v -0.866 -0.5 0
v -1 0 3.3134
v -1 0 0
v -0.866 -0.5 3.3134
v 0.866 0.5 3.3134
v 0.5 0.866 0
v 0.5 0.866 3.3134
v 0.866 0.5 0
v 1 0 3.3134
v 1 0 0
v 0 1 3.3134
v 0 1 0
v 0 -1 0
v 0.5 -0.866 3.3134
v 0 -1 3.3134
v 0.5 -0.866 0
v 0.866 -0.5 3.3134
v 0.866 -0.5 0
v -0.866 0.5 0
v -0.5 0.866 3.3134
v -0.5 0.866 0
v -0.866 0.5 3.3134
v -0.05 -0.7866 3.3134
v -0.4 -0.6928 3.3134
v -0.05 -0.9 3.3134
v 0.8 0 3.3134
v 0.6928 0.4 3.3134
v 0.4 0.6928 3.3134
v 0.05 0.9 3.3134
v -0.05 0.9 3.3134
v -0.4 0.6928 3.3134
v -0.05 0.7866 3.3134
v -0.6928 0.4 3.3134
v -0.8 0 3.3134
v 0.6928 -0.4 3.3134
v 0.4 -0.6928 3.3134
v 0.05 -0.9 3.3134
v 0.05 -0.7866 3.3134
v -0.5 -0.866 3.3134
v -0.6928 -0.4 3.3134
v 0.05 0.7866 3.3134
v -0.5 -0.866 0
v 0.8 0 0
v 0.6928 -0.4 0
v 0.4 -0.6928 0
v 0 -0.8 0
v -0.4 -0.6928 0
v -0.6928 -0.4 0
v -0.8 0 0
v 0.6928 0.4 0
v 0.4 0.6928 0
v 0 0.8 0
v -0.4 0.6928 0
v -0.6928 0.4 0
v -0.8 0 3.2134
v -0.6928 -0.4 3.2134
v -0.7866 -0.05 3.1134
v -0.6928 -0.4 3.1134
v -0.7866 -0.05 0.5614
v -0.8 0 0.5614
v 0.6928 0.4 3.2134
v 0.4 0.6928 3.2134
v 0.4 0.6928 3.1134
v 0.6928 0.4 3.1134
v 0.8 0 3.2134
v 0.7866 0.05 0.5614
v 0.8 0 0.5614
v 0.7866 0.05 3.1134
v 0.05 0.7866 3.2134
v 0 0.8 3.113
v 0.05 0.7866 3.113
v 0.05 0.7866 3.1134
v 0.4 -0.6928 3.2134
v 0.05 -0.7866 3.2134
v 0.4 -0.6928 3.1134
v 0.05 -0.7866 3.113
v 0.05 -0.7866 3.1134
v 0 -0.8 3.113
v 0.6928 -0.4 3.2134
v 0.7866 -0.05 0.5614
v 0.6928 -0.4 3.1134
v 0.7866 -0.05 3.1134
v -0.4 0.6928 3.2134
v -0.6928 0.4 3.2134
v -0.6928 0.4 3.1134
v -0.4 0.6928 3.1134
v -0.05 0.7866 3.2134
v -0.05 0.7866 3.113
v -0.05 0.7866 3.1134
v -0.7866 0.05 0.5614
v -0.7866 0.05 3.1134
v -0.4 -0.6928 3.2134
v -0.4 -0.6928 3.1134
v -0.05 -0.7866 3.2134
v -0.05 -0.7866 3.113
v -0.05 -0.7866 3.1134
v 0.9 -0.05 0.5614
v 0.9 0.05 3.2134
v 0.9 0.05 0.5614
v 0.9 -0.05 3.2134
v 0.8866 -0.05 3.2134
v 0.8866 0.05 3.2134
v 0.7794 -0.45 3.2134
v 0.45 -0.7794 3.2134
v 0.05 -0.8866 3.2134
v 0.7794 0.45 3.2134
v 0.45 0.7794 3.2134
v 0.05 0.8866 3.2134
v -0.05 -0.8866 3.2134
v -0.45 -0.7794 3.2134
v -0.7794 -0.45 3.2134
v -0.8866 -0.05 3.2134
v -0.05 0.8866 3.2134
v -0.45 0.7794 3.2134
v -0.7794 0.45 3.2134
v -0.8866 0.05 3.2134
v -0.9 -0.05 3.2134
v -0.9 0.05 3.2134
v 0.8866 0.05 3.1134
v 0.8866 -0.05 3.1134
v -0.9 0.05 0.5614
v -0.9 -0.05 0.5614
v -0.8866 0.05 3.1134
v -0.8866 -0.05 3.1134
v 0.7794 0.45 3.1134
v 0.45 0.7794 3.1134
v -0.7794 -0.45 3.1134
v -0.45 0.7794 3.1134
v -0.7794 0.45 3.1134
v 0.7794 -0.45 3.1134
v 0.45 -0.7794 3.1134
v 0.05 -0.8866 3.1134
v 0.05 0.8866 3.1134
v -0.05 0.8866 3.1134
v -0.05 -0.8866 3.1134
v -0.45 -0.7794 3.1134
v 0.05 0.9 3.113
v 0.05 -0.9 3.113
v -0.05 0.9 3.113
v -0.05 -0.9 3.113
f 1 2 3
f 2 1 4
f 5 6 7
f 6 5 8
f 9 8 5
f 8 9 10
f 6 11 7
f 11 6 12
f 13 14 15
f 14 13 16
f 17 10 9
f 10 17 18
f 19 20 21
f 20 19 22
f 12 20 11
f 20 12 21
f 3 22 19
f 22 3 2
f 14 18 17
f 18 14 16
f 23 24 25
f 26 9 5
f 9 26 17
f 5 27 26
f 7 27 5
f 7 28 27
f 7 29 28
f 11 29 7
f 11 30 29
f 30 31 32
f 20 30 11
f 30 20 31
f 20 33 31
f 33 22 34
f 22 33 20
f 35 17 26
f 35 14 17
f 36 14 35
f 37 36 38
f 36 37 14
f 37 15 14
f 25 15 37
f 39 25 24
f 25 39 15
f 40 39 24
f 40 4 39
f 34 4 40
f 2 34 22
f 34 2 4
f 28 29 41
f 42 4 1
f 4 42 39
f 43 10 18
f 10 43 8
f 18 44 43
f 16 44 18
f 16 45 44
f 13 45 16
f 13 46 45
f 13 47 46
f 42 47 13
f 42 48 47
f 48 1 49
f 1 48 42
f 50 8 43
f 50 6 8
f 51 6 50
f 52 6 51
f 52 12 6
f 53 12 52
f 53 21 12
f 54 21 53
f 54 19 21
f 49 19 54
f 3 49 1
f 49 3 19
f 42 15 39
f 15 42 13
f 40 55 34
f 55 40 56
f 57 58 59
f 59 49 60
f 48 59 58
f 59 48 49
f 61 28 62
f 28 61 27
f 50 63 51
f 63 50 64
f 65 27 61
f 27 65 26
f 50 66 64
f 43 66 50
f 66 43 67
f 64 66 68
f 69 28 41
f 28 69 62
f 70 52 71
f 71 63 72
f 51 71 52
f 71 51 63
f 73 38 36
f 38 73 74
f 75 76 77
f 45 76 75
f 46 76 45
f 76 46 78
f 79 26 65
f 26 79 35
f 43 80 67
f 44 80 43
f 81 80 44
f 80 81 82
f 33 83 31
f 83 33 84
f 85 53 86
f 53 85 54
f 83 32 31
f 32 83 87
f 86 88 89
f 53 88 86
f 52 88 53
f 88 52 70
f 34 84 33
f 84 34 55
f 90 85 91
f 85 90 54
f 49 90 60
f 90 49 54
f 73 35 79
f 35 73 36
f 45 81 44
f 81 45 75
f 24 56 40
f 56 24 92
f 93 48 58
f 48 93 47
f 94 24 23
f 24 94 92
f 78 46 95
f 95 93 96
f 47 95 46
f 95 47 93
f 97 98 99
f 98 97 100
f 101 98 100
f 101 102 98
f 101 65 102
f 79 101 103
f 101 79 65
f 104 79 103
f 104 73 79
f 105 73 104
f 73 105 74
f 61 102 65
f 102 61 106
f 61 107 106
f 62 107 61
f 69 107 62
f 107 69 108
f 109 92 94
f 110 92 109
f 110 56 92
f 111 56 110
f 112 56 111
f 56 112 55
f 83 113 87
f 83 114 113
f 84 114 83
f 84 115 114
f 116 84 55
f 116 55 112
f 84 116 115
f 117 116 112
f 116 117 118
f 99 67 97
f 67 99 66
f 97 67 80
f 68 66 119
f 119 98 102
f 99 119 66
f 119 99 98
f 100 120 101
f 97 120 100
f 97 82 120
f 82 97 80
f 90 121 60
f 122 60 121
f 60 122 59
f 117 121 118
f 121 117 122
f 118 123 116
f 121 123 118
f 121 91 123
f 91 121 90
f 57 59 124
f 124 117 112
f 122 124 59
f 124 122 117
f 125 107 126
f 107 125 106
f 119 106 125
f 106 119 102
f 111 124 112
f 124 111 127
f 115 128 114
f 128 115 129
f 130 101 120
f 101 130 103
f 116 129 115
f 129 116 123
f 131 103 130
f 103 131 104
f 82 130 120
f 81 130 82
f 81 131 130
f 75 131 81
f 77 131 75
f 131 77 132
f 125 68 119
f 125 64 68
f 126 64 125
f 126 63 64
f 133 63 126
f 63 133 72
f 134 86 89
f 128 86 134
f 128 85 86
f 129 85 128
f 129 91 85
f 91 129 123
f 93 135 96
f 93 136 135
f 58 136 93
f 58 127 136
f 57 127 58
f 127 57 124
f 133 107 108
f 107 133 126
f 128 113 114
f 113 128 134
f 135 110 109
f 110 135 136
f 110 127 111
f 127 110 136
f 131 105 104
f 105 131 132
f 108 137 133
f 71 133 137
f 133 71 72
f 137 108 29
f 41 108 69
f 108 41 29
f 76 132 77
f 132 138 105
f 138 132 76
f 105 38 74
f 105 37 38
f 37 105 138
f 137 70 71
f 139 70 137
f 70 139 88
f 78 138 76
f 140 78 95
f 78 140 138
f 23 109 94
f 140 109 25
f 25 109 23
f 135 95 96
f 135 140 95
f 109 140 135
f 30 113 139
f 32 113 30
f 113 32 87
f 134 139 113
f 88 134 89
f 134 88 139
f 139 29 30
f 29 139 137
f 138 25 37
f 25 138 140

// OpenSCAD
tolerance=0.075;
hole_radius=0.05;
grid_hole_radius=0.05;
outer_radius=1;
thickness=0.2;
hole_attach_height=0.05;
compressed_height=3.3134;
extended_height=5.8654;
next_hole_radius=0.05;
next_hole_attach_height=0.05;
next_inner=0.8;
hole_twist=0.0017;
//other params
eps = tolerance/100;
rail_attach_height = grid_hole_radius + hole_attach_height;
inner_radius = outer_radius - thickness;
rail_attach_width = rail_attach_height;
fn = 12;
fnh = 6;

module angled_cylinder(angle_deg_y, _h, _r, angle_deg_x = 0) {
    rotate([angle_deg_x, angle_deg_y, 0]) { // Rotate the cylinder 
            cylinder(h = _h, r = _r, center = true, $fn = fnh);
        }
}

module hole(_h) {
    cylinder(h = _h, r = grid_hole_radius, $fn = fnh);
}

//makes circle of holes
module circular_grid(_h, _r, _n) {
    for (i = [0:_n-1]) {
        angle = i * 360 / _n;
        x_pos = _r * cos(angle);
        y_pos = _r * sin(angle);
        translate([x_pos, y_pos, -eps]) {
            hole(_h);
        }
    }
}

//makes grid of holes
module hole_grid(hole_height, grid_h) {
    translate([0,0,hole_height]) {
        difference() {
            //cylinder
            cylinder(h = grid_h, r = (inner_radius + outer_radius)/2, 
                center=false, $fn = fn);
            //holes
            for (i = [0 : grid_hole_radius * 2 + hole_attach_height : inner_radius - grid_hole_radius * 2]) {
                circular_grid(grid_h + eps*2, i, ceil(6.28*i/(grid_hole_radius*4)));
            }
            
        } 
    }
}

module bottom_joint() {
    out_hole_angle = 60;

    //grid of holes
    //hole_grid(hole_radius*2 + hole_attach_height * 2, grid_hole_radius);
   
    difference() {
        //outer cylinder
        cylinder(h=compressed_height, r= outer_radius, $fn = fn);
        
        //shell
        translate([0,0,-eps/2])
        cylinder(h=compressed_height + eps, r= inner_radius, $fn = fn);
        
        //screw holes
//        translate([0,0,hole_attach_height + hole_radius]) 
//        rotate([0,0,hole_twist]){
//            rotate([90,0,0])
//            cylinder(h=outer_radius*2 + eps,r=hole_radius,$fn=fnh,center=true);
//            rotate([0,90,0])
//            cylinder(h=outer_radius*2 + eps,r=hole_radius,$fn=fnh,center=true);
//            
//            
//        }
        
        //space between guide holes and grid
        guide_hole_space = grid_hole_radius;
        //guide holes
//        translate([-grid_hole_radius*cos(out_hole_angle) + inner_radius,0,hole_attach_height*2 + hole_radius*2 + grid_hole_radius + grid_hole_radius*sin(out_hole_angle) + guide_hole_space])
//                rotate([0,out_hole_angle,0])
//                cylinder(h=thickness/sin(out_hole_angle) + grid_hole_radius*2/tan(out_hole_angle), r=grid_hole_radius, $fn = fnh);
//        
//        translate([grid_hole_radius*cos(out_hole_angle) - inner_radius,0,hole_attach_height*2 + hole_radius*2 + grid_hole_radius + grid_hole_radius*sin(out_hole_angle) + guide_hole_space])
//                rotate([0,-out_hole_angle,0])
//                cylinder(h=thickness/sin(out_hole_angle) + grid_hole_radius*2/tan(out_hole_angle), r=grid_hole_radius, $fn = fnh);
        
        //for future reference of minimum joint size
        guide_height = hole_attach_height*2 + hole_radius*2 + grid_hole_radius + grid_hole_radius*2/sin(out_hole_angle) + thickness/tan(out_hole_angle) + guide_hole_space;
        
        //track
        rail_height = rail_attach_height + extended_height - compressed_height;
        translate([inner_radius,0,compressed_height - rail_height/2 - rail_attach_height])
            cube([thickness,rail_attach_width,rail_height],center = true);
        
        translate([-inner_radius,0,compressed_height - rail_height/2 - rail_attach_height])
            cube([thickness,rail_attach_width,rail_height],center = true);
        
        translate([0,0,compressed_height - rail_attach_height*2])
        cylinder(h=rail_attach_height,r=inner_radius + thickness/2,$fn=fn);
        
        //insert to track
        translate([0,0,compressed_height - rail_attach_height])
        cube([rail_attach_width, inner_radius*2 + thickness, rail_attach_height*2 + eps],center=true);
        
        //groove for string to slide through
//        translate([0,0,compressed_height])
//        rotate([0,90,0])
//        cylinder(h=outer_radius*2 + eps, r=grid_hole_radius,center=true, $fn=fnh);
    }
    
}

bottom_joint();
